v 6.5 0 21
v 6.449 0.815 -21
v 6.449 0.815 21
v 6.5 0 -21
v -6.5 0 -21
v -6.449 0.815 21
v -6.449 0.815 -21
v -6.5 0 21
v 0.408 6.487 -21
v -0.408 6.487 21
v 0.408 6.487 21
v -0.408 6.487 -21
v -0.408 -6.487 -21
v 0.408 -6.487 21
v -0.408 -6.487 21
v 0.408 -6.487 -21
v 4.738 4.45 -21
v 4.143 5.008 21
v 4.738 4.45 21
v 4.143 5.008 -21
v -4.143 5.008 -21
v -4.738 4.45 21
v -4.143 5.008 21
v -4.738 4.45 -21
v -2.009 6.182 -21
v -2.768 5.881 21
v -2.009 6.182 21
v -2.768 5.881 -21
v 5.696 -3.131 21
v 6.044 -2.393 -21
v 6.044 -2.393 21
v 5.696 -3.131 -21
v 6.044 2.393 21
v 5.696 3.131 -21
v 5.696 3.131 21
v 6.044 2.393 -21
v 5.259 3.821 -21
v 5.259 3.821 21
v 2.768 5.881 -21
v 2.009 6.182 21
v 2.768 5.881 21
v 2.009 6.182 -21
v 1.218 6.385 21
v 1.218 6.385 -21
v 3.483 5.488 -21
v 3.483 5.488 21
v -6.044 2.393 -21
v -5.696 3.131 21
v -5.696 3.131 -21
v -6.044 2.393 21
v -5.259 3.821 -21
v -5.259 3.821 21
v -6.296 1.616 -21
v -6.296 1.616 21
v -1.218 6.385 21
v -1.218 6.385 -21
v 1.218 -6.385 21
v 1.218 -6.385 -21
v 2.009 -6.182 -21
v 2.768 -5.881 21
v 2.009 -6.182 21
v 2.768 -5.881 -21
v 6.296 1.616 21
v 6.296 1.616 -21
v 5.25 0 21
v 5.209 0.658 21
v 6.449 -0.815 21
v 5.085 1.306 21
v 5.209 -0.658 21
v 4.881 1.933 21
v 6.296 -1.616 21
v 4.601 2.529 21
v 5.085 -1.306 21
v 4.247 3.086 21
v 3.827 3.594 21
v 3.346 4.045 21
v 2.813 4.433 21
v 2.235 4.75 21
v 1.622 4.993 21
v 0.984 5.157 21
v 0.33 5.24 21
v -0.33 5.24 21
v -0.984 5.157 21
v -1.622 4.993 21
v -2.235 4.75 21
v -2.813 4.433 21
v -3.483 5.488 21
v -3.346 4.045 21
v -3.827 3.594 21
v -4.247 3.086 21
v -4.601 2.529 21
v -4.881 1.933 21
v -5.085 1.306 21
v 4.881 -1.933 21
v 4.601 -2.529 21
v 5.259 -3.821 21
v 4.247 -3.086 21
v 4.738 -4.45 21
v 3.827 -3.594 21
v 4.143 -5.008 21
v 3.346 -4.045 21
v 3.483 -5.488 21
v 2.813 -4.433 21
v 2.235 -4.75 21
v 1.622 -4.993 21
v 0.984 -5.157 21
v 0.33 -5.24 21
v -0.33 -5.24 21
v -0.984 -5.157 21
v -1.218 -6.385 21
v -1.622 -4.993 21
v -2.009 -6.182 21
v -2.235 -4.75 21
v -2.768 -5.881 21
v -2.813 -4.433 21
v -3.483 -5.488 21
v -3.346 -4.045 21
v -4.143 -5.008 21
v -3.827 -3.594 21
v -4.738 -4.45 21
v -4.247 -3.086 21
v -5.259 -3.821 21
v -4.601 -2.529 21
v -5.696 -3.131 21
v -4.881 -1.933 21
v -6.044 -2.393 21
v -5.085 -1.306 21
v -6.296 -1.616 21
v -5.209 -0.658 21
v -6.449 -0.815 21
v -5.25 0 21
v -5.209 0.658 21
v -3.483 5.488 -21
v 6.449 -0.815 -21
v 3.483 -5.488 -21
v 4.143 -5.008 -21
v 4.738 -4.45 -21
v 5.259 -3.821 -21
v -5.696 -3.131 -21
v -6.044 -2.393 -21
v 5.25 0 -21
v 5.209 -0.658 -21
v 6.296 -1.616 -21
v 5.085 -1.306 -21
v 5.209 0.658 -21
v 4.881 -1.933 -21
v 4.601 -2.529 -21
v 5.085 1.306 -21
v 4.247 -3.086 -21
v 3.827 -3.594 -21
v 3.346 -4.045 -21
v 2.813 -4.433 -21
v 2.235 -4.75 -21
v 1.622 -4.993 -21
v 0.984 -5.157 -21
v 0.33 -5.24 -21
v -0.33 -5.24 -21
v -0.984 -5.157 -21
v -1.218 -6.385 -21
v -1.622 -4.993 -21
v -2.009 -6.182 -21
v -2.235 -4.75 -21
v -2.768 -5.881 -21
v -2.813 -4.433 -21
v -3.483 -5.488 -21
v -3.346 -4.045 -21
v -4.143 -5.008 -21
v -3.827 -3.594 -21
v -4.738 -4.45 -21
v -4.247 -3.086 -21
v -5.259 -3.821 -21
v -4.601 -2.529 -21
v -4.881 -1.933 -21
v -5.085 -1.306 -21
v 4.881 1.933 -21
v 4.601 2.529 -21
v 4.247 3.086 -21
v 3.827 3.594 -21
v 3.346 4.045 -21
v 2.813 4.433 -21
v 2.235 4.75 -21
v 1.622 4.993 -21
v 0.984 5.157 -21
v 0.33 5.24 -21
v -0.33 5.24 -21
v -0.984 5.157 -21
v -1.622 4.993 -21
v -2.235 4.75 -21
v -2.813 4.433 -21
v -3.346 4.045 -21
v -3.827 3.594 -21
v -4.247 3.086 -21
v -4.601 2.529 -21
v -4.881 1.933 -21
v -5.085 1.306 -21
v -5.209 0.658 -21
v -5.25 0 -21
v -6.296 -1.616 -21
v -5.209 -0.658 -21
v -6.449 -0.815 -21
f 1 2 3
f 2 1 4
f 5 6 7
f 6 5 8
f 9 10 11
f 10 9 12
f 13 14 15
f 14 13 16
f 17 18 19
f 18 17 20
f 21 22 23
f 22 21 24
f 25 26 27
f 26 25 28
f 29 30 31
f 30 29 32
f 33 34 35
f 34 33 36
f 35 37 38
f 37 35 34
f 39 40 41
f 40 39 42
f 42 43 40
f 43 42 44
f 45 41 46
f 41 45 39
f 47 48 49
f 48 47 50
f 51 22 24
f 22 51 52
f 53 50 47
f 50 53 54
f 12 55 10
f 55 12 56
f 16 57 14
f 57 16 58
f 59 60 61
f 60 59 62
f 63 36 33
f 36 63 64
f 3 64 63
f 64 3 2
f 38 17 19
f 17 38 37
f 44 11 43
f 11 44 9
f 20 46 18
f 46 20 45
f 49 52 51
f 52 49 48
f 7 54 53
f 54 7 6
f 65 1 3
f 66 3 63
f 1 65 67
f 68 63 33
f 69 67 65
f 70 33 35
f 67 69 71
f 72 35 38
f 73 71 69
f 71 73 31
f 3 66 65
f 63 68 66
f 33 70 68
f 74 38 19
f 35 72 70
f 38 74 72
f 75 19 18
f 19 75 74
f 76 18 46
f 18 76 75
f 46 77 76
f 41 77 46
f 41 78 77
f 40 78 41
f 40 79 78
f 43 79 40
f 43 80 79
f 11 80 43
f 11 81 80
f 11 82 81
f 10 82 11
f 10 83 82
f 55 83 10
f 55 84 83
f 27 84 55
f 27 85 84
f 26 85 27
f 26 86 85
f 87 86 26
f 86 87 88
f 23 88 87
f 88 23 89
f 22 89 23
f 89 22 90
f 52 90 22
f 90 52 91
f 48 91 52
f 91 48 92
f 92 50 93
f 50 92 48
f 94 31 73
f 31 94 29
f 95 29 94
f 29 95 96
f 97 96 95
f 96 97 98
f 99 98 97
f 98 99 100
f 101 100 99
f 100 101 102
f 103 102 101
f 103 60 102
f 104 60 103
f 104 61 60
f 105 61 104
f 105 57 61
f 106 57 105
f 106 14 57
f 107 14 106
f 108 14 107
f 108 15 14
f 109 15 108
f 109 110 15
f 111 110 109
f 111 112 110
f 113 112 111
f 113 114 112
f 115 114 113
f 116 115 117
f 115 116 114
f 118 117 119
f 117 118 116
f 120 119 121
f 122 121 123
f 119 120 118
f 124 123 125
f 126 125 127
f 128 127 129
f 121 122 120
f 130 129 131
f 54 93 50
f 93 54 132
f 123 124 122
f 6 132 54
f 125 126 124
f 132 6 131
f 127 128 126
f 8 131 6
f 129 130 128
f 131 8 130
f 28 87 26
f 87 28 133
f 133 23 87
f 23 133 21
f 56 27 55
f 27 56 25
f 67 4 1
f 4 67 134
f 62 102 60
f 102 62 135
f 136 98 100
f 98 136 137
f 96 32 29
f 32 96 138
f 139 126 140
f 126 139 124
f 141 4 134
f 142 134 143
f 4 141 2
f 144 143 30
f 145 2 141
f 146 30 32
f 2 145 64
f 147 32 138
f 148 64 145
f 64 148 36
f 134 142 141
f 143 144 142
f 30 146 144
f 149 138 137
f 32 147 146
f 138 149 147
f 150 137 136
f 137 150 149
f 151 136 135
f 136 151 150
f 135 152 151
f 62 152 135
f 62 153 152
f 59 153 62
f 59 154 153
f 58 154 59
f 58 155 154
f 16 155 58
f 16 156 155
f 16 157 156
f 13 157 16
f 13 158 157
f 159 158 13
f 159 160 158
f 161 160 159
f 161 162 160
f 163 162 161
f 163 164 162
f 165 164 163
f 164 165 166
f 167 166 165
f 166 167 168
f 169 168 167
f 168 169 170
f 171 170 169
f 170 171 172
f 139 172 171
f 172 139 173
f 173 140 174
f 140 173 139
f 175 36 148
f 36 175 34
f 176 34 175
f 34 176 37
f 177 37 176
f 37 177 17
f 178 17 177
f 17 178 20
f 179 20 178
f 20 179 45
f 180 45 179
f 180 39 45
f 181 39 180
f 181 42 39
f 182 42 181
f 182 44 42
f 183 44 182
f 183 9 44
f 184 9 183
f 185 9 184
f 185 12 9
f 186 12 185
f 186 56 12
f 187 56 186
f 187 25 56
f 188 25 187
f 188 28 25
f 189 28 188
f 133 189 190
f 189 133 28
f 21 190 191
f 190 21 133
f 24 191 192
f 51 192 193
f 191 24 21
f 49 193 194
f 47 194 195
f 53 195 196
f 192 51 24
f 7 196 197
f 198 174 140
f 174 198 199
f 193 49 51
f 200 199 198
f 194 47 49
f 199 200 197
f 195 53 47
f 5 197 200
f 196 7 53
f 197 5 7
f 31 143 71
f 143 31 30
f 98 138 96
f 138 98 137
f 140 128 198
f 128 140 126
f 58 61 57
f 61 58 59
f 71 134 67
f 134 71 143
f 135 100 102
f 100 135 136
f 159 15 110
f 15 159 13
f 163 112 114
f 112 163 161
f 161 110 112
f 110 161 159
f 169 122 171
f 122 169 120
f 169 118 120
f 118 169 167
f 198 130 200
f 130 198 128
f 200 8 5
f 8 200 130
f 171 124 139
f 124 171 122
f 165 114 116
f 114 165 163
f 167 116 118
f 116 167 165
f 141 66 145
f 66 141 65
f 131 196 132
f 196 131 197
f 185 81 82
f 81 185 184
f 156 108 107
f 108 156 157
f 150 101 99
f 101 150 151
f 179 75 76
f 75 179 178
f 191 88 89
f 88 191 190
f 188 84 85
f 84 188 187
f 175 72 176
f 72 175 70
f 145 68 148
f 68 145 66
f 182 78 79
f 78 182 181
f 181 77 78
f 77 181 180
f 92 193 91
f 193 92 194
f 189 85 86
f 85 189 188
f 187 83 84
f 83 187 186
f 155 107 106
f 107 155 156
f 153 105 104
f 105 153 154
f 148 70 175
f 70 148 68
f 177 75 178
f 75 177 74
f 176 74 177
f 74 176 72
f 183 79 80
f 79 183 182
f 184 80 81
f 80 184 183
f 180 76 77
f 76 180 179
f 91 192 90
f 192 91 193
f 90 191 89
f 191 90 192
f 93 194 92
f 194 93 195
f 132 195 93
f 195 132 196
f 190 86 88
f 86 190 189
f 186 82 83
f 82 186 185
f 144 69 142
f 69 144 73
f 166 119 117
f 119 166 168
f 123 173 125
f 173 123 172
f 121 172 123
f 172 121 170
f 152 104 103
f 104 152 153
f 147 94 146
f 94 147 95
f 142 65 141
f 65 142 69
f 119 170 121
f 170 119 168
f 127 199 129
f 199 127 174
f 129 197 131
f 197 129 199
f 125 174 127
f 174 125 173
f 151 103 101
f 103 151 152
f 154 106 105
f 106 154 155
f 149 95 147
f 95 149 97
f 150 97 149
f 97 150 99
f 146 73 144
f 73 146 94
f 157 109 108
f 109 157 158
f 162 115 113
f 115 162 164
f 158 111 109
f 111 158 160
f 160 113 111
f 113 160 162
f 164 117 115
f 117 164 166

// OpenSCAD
$fn = 50;


difference() {
	union() {
		translate(v = [0, 0, -21.0000000000]) {
			cylinder(h = 42, r = 6.5000000000);
		}
	}
	union() {
		translate(v = [0, 0, -100.0000000000]) {
			cylinder(h = 200, r = 5.2500000000);
		}
	}
}
